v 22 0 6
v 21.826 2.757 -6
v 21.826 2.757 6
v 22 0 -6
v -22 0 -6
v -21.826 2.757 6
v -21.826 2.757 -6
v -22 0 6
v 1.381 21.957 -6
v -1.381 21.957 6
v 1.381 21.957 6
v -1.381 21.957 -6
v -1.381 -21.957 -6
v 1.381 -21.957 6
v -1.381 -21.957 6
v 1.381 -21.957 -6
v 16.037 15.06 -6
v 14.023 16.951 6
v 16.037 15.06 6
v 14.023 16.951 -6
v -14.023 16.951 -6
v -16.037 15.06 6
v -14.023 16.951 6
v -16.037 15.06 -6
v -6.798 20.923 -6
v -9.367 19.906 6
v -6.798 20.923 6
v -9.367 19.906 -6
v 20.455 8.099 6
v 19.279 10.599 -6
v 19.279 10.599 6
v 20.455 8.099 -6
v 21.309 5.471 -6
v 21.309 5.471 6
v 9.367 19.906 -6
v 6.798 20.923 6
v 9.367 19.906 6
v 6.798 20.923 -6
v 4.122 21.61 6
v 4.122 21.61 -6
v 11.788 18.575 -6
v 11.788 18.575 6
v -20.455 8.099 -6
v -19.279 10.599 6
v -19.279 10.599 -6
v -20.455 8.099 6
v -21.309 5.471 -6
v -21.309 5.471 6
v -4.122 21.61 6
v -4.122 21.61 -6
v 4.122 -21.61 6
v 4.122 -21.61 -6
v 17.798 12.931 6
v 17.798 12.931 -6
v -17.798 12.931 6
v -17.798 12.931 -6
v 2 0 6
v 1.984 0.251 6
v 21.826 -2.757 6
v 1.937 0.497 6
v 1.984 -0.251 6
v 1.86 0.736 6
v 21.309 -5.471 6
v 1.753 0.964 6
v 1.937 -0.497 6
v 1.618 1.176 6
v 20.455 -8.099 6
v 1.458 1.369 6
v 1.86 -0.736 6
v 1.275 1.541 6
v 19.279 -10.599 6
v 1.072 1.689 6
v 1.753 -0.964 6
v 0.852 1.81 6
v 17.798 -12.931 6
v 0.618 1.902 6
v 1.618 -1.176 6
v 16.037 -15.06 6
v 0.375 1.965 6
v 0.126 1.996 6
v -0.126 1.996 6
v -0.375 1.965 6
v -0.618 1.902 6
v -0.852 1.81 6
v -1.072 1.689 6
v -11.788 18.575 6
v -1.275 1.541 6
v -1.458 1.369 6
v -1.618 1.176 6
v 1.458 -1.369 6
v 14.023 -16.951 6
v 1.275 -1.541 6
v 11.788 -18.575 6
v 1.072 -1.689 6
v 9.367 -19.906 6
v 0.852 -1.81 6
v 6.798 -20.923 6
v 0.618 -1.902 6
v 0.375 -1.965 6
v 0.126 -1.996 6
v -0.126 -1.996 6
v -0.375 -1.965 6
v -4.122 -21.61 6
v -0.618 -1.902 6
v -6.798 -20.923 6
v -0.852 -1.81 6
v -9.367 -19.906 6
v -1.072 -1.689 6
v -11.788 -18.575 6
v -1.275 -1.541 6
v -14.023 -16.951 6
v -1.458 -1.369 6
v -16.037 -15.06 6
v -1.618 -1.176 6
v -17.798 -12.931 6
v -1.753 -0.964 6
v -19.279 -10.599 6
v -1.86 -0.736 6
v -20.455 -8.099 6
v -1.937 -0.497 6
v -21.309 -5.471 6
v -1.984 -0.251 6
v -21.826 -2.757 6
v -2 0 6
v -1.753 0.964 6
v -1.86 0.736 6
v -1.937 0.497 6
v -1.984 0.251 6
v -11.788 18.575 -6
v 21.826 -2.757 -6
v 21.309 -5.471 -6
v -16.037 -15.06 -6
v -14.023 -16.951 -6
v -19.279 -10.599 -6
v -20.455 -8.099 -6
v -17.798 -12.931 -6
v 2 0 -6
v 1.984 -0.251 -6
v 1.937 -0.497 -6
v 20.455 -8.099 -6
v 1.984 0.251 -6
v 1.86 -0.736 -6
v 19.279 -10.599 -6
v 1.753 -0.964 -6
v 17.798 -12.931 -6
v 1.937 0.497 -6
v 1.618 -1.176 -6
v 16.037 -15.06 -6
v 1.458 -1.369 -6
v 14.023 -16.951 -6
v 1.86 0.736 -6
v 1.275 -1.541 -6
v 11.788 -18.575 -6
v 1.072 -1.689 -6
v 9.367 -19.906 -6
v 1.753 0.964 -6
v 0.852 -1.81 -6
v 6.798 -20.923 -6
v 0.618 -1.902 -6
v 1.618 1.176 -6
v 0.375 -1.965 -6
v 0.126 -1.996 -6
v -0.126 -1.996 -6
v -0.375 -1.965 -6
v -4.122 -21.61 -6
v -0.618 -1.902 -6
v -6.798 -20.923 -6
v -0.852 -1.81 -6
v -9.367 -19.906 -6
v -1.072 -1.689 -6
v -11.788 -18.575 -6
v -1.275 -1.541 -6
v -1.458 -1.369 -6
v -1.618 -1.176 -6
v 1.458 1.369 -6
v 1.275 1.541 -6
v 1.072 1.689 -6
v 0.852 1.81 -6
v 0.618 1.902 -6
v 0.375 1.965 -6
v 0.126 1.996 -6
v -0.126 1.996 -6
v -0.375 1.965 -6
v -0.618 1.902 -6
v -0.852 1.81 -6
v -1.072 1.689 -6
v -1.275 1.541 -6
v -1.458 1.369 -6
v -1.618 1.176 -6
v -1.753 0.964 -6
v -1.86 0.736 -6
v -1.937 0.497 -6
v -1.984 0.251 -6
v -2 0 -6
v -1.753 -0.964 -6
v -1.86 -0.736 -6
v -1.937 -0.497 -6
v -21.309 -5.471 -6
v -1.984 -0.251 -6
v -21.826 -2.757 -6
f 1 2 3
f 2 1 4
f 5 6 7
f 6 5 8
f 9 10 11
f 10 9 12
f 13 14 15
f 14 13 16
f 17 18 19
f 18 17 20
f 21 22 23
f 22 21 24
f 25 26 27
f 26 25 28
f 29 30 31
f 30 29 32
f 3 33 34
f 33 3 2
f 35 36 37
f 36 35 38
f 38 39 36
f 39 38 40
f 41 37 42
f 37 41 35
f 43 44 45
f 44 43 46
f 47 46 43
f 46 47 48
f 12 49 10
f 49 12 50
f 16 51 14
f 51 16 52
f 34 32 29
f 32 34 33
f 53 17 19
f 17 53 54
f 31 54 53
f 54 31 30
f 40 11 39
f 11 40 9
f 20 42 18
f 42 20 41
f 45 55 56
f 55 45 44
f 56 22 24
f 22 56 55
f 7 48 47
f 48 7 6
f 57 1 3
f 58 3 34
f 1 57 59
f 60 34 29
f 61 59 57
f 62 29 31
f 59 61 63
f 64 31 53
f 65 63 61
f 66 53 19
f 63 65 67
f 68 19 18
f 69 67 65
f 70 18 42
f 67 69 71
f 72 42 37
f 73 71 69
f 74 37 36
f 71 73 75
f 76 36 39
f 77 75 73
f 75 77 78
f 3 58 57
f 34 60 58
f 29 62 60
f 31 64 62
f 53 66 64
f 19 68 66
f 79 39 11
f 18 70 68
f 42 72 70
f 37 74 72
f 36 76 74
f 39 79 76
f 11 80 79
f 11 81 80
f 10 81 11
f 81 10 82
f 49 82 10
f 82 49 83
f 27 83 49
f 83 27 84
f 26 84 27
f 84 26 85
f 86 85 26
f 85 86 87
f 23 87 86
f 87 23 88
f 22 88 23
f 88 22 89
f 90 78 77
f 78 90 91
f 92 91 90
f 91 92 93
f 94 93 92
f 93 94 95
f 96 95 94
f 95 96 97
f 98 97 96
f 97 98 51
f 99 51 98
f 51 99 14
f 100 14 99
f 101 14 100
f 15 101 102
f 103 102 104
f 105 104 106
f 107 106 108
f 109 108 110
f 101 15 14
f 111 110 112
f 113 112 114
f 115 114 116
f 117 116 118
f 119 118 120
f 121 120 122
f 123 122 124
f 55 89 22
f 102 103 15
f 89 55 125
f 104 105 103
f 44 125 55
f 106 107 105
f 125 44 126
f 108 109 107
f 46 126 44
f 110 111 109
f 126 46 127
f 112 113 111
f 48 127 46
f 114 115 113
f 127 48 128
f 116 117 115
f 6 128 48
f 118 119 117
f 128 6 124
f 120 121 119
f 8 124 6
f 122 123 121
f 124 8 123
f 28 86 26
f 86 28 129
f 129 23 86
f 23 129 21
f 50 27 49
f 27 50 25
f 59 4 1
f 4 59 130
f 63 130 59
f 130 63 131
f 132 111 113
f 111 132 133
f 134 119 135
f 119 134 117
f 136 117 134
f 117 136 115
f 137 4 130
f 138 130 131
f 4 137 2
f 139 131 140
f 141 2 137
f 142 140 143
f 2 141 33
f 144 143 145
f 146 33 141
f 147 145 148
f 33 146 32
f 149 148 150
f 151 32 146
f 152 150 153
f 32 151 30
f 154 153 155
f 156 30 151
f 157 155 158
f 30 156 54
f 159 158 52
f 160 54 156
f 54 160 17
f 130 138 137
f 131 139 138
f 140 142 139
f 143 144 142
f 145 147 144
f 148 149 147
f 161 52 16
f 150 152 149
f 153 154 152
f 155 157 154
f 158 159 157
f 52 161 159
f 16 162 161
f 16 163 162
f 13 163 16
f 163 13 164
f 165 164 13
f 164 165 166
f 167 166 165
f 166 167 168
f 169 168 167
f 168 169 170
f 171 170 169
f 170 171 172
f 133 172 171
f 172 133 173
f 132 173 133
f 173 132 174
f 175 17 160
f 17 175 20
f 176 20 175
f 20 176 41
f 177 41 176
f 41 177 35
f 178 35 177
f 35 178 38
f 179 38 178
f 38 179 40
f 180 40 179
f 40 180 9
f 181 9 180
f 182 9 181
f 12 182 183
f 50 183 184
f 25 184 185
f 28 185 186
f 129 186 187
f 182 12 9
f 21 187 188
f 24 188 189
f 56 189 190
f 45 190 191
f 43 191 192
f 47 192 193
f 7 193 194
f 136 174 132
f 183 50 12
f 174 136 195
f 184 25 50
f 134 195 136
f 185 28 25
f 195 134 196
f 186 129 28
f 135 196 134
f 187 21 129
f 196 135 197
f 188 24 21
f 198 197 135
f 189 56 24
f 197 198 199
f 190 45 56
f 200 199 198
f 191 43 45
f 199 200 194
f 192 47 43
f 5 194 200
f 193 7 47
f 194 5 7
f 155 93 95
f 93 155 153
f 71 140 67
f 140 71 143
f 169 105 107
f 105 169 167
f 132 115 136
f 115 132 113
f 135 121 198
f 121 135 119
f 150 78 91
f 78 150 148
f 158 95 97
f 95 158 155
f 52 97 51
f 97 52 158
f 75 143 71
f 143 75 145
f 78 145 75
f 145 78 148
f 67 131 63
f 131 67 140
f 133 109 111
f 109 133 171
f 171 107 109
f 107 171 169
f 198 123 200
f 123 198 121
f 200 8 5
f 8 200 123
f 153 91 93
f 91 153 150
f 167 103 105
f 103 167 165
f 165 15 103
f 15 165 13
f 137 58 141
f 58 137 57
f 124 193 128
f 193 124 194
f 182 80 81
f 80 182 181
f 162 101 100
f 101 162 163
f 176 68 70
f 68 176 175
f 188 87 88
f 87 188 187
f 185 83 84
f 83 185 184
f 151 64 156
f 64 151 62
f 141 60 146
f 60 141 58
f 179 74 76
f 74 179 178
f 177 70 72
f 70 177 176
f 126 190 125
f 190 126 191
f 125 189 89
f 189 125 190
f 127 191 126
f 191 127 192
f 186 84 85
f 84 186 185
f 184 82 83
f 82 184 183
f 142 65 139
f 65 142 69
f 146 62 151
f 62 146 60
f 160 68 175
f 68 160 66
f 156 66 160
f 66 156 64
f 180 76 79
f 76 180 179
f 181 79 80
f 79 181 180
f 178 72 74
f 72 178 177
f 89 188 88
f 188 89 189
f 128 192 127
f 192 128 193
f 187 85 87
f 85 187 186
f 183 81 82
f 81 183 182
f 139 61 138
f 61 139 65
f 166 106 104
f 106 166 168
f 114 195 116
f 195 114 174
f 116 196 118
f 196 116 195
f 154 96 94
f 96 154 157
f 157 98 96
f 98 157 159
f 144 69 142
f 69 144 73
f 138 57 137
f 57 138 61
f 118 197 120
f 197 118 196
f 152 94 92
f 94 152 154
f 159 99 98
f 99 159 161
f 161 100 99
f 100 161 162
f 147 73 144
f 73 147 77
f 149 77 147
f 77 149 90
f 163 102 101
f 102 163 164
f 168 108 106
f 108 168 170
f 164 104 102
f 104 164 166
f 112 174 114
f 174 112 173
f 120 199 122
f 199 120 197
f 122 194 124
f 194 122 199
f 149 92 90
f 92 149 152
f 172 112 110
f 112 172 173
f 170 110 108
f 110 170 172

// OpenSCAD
$fn = 50;


difference() {
	union() {
		translate(v = [0, 0, -6.0000000000]) {
			cylinder(h = 12, r = 22.0000000000);
		}
	}
	union() {
		translate(v = [0, 0, -100.0000000000]) {
			cylinder(h = 200, r = 2.0000000000);
		}
	}
}
